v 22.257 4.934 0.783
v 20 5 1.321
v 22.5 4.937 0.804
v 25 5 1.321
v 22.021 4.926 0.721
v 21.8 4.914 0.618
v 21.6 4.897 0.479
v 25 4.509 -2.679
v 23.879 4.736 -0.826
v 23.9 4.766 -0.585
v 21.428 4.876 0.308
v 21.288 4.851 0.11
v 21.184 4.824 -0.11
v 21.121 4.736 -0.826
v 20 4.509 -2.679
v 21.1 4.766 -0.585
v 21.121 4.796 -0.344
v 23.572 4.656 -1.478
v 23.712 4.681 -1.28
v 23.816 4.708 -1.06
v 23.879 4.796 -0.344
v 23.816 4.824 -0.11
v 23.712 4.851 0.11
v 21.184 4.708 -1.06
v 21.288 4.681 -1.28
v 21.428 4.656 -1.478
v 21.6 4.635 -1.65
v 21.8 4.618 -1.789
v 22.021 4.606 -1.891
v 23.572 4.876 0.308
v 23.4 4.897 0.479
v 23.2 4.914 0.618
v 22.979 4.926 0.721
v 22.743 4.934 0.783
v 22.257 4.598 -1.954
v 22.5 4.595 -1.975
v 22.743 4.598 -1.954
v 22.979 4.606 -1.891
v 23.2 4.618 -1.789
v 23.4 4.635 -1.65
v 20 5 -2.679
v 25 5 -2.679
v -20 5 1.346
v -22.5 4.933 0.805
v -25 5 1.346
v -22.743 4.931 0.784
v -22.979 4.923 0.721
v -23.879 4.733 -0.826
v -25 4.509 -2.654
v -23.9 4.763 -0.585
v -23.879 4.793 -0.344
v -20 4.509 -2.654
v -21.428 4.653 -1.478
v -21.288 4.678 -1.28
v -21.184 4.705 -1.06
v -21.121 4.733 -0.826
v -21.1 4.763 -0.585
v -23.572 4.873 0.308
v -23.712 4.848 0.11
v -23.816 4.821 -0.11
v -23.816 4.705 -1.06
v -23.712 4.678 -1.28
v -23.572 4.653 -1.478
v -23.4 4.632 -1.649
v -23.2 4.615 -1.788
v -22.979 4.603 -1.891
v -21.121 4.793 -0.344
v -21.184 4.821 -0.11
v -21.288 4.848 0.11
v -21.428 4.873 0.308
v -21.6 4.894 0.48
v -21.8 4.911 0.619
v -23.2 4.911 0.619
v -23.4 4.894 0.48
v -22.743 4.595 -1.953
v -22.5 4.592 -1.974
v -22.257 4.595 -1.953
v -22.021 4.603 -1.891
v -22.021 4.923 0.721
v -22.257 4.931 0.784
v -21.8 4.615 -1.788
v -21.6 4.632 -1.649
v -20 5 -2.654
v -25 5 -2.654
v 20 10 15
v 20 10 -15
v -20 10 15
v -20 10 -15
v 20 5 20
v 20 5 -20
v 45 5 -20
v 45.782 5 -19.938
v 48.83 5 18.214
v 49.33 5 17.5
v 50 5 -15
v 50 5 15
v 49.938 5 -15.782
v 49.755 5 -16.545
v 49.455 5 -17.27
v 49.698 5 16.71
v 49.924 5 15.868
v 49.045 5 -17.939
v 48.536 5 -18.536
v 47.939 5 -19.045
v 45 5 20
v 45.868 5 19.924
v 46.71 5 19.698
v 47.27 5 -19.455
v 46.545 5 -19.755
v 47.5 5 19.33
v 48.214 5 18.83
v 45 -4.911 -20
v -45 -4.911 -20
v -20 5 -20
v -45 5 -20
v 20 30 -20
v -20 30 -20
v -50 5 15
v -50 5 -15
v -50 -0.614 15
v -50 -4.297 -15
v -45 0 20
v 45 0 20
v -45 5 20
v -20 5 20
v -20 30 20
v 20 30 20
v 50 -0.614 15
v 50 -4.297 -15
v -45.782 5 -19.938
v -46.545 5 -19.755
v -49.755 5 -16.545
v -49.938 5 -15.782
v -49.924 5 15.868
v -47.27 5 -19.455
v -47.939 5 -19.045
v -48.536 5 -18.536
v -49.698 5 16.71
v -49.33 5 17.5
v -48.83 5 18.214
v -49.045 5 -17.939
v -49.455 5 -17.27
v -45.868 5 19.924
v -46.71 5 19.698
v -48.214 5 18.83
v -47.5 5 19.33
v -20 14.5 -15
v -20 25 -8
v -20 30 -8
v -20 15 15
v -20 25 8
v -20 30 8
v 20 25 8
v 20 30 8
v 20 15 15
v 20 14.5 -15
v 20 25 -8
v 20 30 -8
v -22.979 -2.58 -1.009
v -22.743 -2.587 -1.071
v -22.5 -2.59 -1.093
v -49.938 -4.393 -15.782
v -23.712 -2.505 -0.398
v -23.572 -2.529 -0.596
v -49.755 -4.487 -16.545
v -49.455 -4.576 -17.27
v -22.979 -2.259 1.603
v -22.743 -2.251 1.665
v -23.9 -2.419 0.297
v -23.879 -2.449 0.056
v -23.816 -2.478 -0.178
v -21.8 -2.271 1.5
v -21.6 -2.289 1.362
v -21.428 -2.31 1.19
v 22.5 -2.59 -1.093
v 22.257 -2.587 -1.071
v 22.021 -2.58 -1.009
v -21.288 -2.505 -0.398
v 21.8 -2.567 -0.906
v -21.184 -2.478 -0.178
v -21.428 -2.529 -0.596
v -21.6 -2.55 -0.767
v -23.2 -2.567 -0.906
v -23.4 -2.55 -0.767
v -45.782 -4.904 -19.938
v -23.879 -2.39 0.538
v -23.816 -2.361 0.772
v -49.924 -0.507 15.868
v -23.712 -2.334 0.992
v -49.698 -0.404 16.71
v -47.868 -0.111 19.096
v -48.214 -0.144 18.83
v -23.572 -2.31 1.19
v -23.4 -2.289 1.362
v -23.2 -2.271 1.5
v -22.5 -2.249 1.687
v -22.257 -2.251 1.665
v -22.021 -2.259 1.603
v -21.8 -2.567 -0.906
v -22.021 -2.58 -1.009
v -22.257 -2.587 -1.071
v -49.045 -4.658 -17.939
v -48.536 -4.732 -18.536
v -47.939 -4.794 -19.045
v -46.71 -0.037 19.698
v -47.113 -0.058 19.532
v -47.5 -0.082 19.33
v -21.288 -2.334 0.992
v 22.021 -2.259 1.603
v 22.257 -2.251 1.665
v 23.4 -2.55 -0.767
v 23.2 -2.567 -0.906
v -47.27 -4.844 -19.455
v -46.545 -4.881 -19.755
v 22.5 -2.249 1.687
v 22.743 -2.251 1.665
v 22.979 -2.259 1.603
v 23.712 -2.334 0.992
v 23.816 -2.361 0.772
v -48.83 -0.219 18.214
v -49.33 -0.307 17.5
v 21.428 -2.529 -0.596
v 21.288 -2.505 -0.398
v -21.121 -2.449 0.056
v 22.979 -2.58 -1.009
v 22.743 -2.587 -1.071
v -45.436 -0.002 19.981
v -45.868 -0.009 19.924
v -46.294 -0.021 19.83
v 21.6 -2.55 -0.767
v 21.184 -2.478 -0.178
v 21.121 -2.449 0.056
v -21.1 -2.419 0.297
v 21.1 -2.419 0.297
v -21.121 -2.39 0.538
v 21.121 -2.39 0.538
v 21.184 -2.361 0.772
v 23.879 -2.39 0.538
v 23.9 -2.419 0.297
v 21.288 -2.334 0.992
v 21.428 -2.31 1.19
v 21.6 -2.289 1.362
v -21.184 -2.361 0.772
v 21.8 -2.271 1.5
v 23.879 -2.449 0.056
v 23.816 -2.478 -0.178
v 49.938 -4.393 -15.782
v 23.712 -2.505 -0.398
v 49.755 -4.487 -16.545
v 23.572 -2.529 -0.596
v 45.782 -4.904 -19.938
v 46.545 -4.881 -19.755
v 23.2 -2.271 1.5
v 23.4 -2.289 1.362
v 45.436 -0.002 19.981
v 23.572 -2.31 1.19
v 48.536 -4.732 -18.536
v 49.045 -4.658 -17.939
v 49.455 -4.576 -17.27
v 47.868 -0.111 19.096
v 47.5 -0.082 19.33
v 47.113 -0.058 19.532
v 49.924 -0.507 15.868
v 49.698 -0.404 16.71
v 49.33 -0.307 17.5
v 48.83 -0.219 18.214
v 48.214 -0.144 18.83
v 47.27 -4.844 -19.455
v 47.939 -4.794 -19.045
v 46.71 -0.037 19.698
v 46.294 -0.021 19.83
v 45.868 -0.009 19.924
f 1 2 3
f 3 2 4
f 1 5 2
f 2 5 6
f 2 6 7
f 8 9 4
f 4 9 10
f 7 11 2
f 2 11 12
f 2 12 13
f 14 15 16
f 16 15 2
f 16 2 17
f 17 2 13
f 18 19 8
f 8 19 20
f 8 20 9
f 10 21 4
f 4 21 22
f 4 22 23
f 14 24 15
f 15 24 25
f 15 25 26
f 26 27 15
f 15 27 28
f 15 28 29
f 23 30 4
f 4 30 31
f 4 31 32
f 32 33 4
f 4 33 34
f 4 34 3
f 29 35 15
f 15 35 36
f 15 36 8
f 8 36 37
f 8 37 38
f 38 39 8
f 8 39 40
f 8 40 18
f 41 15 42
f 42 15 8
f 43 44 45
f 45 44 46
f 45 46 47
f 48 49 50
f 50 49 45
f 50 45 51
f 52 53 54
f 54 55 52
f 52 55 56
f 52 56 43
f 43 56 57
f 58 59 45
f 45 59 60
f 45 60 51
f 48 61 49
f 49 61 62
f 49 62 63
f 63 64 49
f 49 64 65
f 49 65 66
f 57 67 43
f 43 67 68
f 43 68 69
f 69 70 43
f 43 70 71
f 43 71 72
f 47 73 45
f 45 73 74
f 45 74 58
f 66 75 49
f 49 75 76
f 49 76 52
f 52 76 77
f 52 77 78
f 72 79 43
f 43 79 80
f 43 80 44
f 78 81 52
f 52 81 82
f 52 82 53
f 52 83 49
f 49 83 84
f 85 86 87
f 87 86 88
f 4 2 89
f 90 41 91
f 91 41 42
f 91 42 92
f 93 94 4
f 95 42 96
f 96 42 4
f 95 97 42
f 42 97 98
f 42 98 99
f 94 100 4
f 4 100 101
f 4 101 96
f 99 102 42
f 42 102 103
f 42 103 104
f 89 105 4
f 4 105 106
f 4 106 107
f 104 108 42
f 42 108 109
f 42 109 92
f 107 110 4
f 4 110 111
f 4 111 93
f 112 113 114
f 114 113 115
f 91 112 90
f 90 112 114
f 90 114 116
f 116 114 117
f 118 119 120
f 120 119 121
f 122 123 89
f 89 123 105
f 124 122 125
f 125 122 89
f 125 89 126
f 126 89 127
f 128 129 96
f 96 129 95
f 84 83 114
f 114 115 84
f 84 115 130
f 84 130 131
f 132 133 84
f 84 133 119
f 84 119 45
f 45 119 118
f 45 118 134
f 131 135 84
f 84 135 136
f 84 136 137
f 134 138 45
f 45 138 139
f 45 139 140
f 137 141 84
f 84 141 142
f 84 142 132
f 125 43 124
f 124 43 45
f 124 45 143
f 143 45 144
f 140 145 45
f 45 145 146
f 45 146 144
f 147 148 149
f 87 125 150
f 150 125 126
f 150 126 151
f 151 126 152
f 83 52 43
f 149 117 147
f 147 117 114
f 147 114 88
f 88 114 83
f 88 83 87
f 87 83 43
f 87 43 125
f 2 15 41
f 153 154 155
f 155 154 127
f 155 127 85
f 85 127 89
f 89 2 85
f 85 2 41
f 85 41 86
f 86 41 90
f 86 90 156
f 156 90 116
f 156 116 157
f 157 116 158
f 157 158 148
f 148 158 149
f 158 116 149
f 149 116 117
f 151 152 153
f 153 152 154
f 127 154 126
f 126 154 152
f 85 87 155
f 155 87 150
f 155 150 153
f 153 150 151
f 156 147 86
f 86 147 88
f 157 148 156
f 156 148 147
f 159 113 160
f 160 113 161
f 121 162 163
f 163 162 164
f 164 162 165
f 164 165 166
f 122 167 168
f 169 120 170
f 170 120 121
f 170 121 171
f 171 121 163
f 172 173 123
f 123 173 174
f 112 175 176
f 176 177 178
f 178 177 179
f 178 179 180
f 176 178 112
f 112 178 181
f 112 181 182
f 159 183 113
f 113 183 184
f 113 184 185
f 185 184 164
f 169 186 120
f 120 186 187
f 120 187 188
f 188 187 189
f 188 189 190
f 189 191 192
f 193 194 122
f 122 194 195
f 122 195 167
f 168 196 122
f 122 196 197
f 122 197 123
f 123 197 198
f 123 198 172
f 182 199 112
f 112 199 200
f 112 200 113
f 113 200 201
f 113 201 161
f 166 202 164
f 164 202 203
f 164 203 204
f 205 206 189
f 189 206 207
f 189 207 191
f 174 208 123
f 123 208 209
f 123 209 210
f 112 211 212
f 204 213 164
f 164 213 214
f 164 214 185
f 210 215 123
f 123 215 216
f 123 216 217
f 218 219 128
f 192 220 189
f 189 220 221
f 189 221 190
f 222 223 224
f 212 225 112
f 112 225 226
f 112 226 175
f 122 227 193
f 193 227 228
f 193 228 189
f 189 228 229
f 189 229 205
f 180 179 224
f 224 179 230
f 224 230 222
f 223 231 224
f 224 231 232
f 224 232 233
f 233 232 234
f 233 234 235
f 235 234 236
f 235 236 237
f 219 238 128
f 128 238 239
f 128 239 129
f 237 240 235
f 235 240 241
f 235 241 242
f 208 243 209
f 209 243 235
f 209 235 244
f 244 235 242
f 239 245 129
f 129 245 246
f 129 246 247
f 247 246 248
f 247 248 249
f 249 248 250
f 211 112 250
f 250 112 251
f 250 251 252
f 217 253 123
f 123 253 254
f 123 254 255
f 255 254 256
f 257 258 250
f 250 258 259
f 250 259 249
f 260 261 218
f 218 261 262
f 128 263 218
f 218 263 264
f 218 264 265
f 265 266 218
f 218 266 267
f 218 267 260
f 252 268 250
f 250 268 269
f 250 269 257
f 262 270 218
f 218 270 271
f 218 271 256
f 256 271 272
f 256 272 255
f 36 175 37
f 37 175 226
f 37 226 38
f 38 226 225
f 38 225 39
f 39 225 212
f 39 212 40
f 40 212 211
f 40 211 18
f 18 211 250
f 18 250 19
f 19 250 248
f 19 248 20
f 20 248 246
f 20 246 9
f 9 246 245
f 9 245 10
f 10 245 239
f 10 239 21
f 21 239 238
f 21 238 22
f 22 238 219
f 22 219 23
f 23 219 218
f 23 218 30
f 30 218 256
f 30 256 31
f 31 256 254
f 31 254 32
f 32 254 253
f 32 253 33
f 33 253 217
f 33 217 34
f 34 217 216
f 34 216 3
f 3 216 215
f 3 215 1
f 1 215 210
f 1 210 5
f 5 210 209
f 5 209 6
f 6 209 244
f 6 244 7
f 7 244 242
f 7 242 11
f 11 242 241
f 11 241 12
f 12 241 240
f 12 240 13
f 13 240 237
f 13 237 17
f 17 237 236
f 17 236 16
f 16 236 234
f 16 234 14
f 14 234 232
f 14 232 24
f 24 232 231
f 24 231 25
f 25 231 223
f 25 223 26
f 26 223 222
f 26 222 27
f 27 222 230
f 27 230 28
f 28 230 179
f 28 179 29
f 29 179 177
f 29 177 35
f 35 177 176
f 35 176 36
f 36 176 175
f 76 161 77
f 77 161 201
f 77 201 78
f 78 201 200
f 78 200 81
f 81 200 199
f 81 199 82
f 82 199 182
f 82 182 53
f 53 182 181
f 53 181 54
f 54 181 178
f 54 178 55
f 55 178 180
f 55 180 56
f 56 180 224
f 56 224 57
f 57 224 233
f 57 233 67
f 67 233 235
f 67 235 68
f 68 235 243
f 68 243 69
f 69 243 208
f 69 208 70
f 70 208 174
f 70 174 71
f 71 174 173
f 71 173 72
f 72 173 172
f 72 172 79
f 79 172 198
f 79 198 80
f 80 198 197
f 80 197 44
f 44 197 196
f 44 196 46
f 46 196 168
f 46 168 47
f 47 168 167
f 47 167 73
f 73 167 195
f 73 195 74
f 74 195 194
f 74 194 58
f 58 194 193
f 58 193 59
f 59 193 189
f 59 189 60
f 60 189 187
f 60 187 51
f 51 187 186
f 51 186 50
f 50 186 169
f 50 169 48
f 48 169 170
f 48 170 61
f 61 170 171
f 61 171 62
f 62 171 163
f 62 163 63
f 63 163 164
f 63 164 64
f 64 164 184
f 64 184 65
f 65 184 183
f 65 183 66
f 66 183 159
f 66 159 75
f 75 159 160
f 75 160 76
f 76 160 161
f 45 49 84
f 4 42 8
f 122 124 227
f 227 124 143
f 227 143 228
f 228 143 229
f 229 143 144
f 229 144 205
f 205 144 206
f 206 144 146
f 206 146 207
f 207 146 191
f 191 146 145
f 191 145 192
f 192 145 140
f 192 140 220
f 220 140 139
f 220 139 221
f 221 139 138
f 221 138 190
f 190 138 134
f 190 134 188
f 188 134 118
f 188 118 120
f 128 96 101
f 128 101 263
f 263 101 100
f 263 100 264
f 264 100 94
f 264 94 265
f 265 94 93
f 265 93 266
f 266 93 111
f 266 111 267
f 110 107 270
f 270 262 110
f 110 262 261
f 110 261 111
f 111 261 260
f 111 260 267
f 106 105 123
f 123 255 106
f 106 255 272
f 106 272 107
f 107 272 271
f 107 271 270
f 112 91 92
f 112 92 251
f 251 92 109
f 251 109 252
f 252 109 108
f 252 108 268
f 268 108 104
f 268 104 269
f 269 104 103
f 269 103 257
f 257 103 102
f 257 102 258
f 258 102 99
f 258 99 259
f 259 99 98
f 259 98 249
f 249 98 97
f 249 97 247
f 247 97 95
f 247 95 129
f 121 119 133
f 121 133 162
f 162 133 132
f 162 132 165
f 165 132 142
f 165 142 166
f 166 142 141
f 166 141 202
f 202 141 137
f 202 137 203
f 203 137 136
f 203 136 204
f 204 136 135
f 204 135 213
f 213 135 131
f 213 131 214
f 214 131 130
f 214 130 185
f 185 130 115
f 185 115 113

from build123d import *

# Parameters (mm, degrees)
SKETCH1_W           = 100
SKETCH1_H           = 40
BOSS_EXTRUDE1_DEPTH = 5
BOSS_EXTRUDE2_DEPTH = 5
SKETCH4_W           = 40
SKETCH4_H           = 12
BOSS_EXTRUDE3_DEPTH = 20
CUT_EXTRUDE2_DEPTH  = 70
BOSS_EXTRUDE5_DEPTH = 100
SKETCH12_R          = 1.4
CUT_EXTRUDE3_DEPTH  = 10
CUT_EXTRUDE4_DEPTH  = 30
BOSS_EXTRUDE6_DEPTH = 25
CUT_EXTRUDE5_DEPTH  = 30
BOSS_EXTRUDE7_DEPTH = 25
FILLET1_R           = 5


with BuildPart() as part:
    # Sketch1 → Boss-Extrude1 (new body)
    with BuildSketch(Plane(origin=(0, 0, 0), x_dir=(1, 0, 0), z_dir=(0, 1, 0))):
        Rectangle(SKETCH1_W, SKETCH1_H)
    extrude(amount=BOSS_EXTRUDE1_DEPTH)

    # Sketch3 → Boss-Extrude2 (add)
    with BuildSketch(Plane(origin=(0, 5, 0), x_dir=(1, 0, 0), z_dir=(0, 1, 0))):
        Polygon((0, 20), (-20, 20), (-20, -20), (20, -20), (20, 20), align=None)
    extrude(amount=BOSS_EXTRUDE2_DEPTH)

    # Sketch4 → Boss-Extrude3 (add)
    with BuildSketch(Plane(origin=(0, 10, 0), x_dir=(1, 0, 0), z_dir=(0, 1, 0))):
        with Locations((0, 14)):
            Rectangle(SKETCH4_W, SKETCH4_H)
        with Locations((0, -14)):
            Rectangle(SKETCH4_W, SKETCH4_H)
    extrude(amount=BOSS_EXTRUDE3_DEPTH)

    # Sketch10 → Cut-Extrude2 (cut)
    with BuildSketch(Plane(origin=(20, 0, 0), x_dir=(0, 0, -1), z_dir=(1, 0, 0))):
        Polygon((-8, 10), (-15, 10), (-15, 15), (-8, 25), align=None)
        Polygon((8, 10), (15, 10), (15, 14.5), (8, 25), align=None)
    extrude(amount=-CUT_EXTRUDE2_DEPTH, mode=Mode.SUBTRACT)

    # Sketch11 → Boss-Extrude5 (add)
    with BuildSketch(Plane.ZY.offset(50)):
        Polygon((20, 0), (-20, -4.911382436), (-20, 0), align=None)
    extrude(amount=-BOSS_EXTRUDE5_DEPTH)

    # Sketch12 → Cut-Extrude3 (cut)
    with BuildSketch(Plane(origin=(0, -2.419218956, 0.297042737), x_dir=(1, 0, 0), z_dir=(0, -0.992546151641323, 0.121869343405141))):
        with Locations(Location((-22.5, 0, 0), (0, 0, 270))):
            Circle(SKETCH12_R)
        with Locations(Location((22.5, 0, 0), (0, 0, 270))):
            Circle(SKETCH12_R)
    extrude(amount=-CUT_EXTRUDE3_DEPTH, mode=Mode.SUBTRACT)

    # Sketch16 → Cut-Extrude4 (cut)
    with BuildSketch(Plane.ZY.offset(50)):
        Polygon((-2.653640591, 5), (1.346359409, 5), (-2.653640591, 4.508861756), align=None)
    extrude(amount=-CUT_EXTRUDE4_DEPTH, mode=Mode.SUBTRACT)

    # Sketch17 → Boss-Extrude6 (add)
    with BuildSketch(Plane.ZY.offset(50)):
        Polygon((-2.653640591, 5), (-2.653640591, 4.508861756), (1.346359409, 5), align=None)
    extrude(amount=-BOSS_EXTRUDE6_DEPTH)

    # Sketch18 → Cut-Extrude5 (cut)
    with BuildSketch(Plane(origin=(50, 0, 0), x_dir=(0, 0, -1), z_dir=(1, 0, 0))):
        Polygon((2.679400207, 5), (-1.320599793, 5), (2.679400207, 4.508861756), align=None)
    extrude(amount=-CUT_EXTRUDE5_DEPTH, mode=Mode.SUBTRACT)

    # Sketch19 → Boss-Extrude7 (add)
    with BuildSketch(Plane(origin=(50, 0, 0), x_dir=(0, 0, -1), z_dir=(1, 0, 0))):
        Polygon((2.679400207, 4.508861756), (2.679400207, 5), (-1.320599793, 5), align=None)
    extrude(amount=-BOSS_EXTRUDE7_DEPTH)

    # Fillet1
    fillet1_edges = [part.edges().sort_by_distance(p)[0] for p in [
        (50, 0.044308782, -20),
        (50, 2.5, 20),
        (-50, 2.5, 20),
        (-50, 0.044308782, -20),
    ]]
    fillet(fillet1_edges, radius=FILLET1_R)


solid = part.part
